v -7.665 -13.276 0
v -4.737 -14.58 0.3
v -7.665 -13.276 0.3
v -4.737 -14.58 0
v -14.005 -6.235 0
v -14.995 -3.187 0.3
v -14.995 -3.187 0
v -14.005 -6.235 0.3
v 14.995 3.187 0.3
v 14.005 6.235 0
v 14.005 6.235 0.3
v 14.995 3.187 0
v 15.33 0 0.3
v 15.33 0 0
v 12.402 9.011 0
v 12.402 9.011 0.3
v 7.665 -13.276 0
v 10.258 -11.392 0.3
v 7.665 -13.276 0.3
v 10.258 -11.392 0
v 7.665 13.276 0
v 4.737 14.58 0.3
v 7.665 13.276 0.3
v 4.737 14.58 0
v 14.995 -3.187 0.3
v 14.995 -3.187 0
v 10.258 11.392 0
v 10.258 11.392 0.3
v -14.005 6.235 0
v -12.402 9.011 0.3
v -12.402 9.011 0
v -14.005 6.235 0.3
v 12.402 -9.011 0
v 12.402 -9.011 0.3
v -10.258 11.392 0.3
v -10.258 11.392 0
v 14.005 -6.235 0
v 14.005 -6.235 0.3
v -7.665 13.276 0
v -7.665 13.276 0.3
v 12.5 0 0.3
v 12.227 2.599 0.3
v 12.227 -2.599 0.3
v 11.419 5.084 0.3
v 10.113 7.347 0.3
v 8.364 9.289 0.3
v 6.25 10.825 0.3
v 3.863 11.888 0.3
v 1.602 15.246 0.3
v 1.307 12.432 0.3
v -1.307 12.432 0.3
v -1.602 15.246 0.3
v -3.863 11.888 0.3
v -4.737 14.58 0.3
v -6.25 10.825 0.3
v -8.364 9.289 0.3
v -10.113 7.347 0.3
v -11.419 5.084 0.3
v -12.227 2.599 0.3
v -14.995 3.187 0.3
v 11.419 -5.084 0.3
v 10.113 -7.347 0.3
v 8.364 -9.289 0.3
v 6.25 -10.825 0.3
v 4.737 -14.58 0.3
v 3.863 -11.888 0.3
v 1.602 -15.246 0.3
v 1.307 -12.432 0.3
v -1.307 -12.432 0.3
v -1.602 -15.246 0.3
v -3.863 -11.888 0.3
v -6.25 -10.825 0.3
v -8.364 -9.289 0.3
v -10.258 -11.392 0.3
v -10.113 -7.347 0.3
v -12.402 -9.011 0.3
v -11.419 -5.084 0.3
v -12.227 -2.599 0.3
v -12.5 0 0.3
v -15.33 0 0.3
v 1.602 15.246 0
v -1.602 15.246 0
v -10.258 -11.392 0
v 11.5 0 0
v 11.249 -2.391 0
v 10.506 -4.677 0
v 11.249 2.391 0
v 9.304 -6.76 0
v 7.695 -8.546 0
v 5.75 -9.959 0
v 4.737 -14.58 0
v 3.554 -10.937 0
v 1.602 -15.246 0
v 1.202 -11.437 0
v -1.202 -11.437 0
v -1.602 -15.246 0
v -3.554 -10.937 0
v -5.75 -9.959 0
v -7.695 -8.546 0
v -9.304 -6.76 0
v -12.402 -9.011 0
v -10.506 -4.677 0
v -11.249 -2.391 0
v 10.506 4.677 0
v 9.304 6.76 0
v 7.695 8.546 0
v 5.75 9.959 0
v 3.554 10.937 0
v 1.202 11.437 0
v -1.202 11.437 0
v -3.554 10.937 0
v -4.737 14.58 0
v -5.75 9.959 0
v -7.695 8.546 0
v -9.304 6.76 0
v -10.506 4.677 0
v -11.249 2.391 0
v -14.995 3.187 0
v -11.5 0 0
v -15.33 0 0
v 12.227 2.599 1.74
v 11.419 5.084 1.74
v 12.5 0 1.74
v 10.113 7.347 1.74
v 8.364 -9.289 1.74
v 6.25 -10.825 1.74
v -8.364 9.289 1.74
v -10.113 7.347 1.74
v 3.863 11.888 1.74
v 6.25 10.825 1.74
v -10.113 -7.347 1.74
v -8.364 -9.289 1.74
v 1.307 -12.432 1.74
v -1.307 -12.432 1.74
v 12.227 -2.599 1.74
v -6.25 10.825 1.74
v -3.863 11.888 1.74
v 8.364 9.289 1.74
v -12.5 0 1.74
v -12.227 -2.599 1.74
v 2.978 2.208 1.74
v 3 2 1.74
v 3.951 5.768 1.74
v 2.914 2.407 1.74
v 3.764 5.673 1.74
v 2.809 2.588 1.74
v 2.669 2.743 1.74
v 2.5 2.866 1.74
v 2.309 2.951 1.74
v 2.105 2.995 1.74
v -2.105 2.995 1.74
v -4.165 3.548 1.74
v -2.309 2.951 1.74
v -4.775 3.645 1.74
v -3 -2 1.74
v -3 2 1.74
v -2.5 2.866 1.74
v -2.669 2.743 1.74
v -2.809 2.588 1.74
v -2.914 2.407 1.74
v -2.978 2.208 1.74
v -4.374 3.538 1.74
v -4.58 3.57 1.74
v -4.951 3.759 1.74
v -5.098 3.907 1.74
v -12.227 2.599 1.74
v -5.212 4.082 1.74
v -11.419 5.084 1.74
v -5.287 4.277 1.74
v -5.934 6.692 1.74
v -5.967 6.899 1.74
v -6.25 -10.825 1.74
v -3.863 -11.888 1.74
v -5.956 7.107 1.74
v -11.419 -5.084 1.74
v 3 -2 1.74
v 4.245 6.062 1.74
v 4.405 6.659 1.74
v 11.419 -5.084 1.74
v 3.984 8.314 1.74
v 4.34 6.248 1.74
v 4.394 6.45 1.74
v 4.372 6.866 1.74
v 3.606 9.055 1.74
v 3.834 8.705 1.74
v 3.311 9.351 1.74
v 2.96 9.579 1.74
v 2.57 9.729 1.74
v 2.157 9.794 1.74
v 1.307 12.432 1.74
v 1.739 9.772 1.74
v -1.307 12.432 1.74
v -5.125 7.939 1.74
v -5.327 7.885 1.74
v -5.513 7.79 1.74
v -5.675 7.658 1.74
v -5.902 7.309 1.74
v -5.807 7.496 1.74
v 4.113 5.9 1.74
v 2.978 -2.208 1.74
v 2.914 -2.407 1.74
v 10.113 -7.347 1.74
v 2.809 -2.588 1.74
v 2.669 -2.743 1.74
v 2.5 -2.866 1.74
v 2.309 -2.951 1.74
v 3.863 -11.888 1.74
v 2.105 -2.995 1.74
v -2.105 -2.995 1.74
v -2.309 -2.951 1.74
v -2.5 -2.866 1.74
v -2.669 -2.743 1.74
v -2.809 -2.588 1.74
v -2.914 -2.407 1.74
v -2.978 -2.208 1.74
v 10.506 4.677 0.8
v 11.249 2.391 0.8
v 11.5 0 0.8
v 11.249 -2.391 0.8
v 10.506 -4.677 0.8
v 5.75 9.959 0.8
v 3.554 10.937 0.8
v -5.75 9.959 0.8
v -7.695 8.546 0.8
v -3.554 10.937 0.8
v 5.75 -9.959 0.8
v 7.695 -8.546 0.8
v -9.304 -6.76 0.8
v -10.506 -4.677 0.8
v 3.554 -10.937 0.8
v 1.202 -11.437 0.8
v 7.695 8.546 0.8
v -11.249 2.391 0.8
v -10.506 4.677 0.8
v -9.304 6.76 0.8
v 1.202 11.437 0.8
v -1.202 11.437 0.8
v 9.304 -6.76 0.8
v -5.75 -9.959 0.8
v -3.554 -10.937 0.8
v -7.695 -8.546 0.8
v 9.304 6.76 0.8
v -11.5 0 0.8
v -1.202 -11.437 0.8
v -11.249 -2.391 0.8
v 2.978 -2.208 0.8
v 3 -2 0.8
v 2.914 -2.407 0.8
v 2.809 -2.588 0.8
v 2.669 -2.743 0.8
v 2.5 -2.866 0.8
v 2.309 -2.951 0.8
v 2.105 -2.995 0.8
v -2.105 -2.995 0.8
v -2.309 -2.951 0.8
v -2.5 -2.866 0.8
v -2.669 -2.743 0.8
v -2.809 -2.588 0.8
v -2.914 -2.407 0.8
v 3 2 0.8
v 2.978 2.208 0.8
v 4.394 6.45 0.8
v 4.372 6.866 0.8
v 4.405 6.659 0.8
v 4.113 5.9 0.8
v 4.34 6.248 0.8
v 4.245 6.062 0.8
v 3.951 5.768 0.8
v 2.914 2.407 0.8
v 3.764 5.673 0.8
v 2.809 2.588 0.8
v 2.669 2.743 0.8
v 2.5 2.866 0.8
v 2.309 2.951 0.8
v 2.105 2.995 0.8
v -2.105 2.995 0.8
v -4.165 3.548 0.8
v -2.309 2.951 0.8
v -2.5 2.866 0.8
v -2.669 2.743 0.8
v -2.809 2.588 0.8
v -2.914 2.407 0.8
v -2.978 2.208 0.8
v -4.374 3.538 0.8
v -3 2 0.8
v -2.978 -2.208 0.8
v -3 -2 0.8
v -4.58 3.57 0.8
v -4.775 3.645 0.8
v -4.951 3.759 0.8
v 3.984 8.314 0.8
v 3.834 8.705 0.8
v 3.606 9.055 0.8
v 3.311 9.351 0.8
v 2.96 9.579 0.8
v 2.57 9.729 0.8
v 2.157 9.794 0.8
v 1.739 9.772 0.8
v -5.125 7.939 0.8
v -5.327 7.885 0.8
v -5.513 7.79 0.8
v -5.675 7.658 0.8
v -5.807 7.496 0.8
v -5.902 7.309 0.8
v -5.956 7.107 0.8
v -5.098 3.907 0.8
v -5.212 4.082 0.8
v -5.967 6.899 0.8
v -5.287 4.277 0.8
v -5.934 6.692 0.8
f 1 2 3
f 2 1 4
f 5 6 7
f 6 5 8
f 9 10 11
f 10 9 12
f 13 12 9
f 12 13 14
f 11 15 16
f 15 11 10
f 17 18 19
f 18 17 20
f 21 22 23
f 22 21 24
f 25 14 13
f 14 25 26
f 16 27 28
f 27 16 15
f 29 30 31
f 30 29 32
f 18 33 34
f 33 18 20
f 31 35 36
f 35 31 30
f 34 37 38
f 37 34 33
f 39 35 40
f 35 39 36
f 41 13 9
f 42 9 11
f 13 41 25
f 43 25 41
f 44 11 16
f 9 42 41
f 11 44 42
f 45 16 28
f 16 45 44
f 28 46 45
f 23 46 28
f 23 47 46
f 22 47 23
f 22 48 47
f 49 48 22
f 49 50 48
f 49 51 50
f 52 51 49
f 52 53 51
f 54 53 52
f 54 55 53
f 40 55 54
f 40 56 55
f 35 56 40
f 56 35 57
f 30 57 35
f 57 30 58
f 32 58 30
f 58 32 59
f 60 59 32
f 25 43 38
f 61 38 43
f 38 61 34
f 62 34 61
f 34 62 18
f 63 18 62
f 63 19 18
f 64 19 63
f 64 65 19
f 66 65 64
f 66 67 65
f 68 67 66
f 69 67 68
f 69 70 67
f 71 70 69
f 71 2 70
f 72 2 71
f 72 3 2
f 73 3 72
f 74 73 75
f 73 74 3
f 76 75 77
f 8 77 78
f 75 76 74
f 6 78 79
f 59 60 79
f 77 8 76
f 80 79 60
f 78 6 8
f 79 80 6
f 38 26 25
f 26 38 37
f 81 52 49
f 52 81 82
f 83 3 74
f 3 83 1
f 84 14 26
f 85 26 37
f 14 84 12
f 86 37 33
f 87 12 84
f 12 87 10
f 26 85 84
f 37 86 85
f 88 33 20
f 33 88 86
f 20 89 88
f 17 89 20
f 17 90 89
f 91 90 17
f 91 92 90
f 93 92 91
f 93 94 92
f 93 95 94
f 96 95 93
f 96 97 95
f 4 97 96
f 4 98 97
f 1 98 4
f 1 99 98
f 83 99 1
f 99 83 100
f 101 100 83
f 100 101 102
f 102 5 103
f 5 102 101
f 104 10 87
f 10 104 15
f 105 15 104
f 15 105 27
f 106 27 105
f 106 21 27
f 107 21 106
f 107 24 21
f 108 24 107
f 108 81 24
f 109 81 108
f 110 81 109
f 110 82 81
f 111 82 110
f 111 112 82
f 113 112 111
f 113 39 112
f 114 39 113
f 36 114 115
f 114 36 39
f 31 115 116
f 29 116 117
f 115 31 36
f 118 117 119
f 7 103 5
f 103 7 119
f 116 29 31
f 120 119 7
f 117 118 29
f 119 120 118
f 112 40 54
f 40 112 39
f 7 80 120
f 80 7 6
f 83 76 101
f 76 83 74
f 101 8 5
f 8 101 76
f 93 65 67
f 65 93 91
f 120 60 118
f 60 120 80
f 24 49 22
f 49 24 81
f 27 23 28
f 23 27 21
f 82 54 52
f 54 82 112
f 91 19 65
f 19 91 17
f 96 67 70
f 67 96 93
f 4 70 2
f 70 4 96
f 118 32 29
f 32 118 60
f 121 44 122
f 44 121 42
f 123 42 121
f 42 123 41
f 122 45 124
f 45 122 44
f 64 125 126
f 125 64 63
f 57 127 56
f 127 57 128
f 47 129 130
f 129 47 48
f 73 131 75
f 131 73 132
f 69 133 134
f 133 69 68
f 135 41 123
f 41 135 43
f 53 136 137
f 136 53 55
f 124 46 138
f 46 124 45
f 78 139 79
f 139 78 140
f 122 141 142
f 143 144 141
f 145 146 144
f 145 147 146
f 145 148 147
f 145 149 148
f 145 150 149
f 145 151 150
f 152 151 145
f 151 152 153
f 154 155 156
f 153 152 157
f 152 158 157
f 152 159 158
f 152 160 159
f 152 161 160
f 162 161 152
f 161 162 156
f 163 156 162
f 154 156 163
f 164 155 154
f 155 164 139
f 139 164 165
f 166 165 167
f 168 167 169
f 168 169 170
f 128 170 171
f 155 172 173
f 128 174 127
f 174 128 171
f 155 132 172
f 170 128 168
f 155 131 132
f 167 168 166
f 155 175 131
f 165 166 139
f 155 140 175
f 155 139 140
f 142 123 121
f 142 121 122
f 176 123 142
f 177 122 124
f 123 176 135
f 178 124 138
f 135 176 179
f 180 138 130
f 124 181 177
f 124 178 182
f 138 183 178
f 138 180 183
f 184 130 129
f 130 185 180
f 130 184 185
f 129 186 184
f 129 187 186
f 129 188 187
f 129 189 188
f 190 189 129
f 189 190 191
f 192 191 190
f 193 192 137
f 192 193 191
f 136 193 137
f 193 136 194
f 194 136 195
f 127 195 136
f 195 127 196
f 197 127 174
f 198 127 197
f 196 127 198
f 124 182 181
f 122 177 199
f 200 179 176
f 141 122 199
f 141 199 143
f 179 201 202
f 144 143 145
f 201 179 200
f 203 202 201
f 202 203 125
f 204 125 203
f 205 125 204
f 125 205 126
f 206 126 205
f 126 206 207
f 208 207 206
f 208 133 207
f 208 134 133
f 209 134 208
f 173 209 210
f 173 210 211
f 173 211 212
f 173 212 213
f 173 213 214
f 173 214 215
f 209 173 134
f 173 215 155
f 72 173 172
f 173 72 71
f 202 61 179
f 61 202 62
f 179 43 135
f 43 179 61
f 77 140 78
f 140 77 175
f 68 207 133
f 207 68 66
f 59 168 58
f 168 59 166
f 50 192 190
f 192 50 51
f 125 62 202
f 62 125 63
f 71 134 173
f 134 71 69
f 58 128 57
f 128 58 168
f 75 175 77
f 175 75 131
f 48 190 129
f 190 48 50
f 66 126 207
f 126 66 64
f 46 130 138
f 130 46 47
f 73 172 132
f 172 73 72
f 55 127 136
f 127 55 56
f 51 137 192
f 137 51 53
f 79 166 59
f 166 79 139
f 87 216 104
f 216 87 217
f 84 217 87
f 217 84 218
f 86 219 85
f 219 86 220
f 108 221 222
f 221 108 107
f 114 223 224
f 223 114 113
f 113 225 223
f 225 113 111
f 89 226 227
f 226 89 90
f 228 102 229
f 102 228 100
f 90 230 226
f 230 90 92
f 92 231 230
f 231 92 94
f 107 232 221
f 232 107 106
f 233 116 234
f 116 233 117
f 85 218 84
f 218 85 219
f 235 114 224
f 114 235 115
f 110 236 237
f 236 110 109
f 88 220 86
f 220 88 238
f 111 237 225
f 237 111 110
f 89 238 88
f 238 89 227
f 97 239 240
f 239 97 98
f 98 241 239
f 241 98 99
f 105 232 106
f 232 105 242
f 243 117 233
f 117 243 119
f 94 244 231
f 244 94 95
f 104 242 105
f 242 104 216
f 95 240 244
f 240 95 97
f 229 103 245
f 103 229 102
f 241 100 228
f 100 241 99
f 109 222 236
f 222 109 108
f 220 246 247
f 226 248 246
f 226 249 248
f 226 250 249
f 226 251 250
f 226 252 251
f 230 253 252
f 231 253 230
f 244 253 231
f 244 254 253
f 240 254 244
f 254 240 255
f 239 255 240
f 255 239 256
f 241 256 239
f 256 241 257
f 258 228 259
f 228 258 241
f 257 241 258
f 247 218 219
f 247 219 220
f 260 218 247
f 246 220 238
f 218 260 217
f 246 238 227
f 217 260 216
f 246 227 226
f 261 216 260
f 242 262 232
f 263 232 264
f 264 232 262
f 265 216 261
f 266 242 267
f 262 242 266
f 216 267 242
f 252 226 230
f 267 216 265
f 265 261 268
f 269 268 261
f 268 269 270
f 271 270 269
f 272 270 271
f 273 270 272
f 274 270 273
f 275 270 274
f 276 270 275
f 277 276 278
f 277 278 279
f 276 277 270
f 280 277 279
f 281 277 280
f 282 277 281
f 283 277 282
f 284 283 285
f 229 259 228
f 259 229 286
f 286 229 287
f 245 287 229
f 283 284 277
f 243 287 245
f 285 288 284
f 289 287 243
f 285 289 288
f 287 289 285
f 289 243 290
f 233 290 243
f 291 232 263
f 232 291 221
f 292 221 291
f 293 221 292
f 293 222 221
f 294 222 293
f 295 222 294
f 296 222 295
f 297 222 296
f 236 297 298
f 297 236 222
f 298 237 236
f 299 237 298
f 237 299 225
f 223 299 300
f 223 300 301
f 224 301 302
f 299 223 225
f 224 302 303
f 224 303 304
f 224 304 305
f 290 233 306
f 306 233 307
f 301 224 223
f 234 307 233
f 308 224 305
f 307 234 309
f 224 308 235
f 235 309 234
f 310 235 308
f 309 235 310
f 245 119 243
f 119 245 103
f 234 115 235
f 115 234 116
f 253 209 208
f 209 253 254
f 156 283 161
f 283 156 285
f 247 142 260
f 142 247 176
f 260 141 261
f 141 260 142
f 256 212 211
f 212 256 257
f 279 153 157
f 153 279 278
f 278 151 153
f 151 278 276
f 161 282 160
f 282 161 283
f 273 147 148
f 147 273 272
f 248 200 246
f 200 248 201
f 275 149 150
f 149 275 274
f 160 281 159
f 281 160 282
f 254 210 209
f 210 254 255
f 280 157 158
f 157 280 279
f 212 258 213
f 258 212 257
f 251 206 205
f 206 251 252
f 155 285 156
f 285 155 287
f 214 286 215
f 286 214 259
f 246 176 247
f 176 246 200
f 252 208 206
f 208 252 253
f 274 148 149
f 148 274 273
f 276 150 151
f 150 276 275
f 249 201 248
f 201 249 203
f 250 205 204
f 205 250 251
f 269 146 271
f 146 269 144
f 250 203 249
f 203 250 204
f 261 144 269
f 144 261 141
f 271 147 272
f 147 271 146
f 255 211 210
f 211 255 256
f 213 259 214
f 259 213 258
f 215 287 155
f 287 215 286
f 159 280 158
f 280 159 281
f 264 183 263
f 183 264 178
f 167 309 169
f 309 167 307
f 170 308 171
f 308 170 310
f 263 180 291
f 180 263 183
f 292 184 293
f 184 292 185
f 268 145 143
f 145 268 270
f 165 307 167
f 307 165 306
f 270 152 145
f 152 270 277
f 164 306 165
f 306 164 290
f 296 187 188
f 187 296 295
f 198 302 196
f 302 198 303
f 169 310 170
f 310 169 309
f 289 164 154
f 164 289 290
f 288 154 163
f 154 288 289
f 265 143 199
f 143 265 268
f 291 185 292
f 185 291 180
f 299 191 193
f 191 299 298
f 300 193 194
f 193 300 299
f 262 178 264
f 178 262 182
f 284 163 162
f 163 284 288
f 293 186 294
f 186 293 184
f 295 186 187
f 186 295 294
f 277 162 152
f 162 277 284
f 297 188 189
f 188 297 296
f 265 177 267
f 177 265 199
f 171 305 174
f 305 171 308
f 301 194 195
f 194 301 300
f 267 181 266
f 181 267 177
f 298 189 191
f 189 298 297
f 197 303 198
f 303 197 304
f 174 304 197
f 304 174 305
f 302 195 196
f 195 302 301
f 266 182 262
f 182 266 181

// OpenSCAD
flange_radius=15.33;
flange_height=0.3; /* might be wrong!!! standard does not define */
disk_surface_height=0.08;
height_above_disk_surface=1.36;
hub_center_radius=12.5;
center_cutout_side_len=4;
difference() {
   group() {
            color("#80d0d0")
            scale([1/10,1/10,1/10])
            cylinder(h=flange_height*10, r=flange_radius*10);
            translate([0,0,flange_height])
            scale([1/10,1/10,1/10])
            cylinder(h=(disk_surface_height + height_above_disk_surface) * 10, 
                     r=hub_center_radius * 10);
        }
    group() {
        /* underside cutout */
        color("#50d090")
        translate([0,0,-1])
        scale([1/10,1/10,1/10])
        cylinder(h=(flange_height + 1.5) * 10,
                 r=(hub_center_radius - 1) * 10);
 
        /* Primary spindle hole */
        color("#50d090")
        translate([0,0,4])
        rotate([0,0,0])
        hull() {
            translate([-2,-2,-5])
            scale([1/10,1/10,1/10])
            cylinder(h=11 * 10,r=1 * 10,center=false);
            
            translate([2,-2,-5])
            scale([1/10,1/10,1/10])
            cylinder(h=11 * 10,r=1 * 10,center=false);
            
            translate([-2, 2,-5])
            scale([1/10,1/10,1/10])
            cylinder(h=11 * 10,r=1 * 10,center=false);
            
            translate([2,2,-5])
            scale([1/10,1/10,1/10])
            cylinder(h=11 * 10,r=1 * 10,center=false);
        };
        /*
        Secondary orientation slot,
        10mm by 4.5mm with rounded corners.
   
        The highest Y-coordinate corner of slot
        has a different radius.*/
        rotate([0,0,15])
        translate([-2,4.5,-1])
        color("#f000f0")
        hull() {
            translate([6,2.5,-1])
            scale([1/10,1/10,1/10])
            cylinder(h=11 * 10,r=2 * 10,center=false);
        
            translate([7,1,-1])
            scale([1/10,1/10,1/10])
            cylinder(h=11 * 10,r=1 * 10,center=false);
            
            translate([-1,1,-1])
            scale([1/10,1/10,1/10])
            cylinder(h=11 * 10,r=1 * 10,center=false);
    
            translate([-1,3.5,-1])
            scale([1/10,1/10,1/10])
            cylinder(h=11 * 10,r=1 * 10,center=false);
        };
        
        
    };
}
